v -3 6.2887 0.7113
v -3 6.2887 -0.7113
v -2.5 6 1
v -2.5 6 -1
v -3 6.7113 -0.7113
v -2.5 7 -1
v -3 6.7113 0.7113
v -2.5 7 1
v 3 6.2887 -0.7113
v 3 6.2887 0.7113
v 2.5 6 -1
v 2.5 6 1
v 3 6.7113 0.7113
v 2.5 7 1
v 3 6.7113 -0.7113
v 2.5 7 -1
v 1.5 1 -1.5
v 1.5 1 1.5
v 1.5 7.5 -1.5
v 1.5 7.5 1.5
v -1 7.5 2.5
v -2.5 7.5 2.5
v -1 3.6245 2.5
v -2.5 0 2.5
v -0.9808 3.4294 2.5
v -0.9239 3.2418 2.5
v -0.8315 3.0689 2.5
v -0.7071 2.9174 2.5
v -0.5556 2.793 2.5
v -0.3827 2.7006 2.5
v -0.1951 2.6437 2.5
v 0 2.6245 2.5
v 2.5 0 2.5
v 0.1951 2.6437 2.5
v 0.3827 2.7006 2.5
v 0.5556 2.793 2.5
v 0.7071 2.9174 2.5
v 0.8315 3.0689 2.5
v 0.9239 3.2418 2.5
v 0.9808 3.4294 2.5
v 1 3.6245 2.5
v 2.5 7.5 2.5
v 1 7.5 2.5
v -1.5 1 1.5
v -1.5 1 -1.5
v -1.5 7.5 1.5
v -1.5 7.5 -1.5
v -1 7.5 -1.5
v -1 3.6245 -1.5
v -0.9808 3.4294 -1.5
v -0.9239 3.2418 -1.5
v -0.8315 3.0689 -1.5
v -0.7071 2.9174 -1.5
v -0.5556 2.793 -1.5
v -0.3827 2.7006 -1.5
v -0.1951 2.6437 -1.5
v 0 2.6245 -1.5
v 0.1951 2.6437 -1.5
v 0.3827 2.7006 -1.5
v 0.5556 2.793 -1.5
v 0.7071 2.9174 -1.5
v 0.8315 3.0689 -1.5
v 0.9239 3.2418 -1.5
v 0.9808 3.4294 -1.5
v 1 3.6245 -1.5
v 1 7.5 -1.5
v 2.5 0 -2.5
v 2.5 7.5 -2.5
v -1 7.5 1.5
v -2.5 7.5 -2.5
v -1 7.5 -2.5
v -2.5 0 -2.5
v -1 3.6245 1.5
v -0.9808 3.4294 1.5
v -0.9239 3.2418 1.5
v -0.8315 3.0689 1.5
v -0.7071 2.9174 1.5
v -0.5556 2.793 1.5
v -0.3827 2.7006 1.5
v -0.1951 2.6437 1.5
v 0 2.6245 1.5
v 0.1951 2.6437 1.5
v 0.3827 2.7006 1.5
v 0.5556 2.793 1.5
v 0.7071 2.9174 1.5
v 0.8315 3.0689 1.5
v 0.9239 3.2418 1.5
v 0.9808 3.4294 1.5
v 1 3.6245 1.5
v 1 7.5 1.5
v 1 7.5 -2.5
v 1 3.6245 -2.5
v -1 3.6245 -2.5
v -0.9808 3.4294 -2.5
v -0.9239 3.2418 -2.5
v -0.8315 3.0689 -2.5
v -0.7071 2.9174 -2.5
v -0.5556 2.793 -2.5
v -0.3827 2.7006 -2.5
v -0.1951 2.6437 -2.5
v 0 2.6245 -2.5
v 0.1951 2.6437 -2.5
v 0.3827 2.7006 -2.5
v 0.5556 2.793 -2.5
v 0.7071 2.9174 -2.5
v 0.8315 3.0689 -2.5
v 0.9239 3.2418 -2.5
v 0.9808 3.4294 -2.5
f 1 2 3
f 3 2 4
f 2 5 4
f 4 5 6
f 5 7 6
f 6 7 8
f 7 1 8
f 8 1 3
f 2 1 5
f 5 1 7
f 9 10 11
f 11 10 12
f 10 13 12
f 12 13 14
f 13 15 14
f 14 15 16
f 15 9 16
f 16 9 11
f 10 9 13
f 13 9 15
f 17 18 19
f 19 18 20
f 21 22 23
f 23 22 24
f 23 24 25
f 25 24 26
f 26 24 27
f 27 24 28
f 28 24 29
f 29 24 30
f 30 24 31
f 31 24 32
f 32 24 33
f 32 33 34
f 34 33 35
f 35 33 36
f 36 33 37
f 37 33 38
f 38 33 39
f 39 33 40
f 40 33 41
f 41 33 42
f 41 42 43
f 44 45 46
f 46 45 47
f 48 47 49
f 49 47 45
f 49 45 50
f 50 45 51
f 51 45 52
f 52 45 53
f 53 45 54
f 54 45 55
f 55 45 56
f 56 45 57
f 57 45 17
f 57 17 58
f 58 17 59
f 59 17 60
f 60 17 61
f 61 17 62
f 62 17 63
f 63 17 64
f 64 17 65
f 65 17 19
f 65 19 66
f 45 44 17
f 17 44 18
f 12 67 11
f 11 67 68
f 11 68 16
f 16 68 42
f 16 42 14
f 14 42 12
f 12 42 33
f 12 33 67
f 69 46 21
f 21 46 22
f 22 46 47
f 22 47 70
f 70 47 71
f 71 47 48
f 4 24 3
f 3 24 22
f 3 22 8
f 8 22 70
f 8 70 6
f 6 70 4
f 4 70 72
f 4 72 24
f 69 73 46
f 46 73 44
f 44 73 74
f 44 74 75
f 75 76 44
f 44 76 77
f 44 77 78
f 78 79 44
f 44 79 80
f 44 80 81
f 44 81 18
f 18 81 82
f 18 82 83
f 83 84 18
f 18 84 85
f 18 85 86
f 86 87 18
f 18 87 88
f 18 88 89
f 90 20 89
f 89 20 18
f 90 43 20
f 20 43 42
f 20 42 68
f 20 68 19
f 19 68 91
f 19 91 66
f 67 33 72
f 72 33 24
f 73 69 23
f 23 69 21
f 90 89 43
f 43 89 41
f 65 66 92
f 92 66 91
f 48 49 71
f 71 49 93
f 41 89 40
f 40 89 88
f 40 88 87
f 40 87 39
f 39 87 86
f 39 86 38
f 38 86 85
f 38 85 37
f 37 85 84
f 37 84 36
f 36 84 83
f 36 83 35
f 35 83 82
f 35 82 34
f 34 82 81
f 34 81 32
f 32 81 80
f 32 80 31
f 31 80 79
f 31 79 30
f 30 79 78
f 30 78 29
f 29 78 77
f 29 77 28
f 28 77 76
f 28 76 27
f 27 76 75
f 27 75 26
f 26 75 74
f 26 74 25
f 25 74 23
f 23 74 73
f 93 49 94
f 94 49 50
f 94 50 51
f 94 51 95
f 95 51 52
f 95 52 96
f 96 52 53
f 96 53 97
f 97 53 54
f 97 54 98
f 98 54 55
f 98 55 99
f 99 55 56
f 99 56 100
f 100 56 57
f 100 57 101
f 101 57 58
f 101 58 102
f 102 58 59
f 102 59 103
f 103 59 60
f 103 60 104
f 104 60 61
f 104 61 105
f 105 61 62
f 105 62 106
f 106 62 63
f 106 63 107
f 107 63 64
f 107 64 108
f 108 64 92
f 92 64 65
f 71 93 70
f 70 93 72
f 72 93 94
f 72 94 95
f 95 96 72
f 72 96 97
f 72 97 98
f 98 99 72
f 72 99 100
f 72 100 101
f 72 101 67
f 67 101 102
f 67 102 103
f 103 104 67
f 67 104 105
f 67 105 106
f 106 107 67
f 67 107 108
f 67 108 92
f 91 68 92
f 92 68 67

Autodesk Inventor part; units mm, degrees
ref_plane "YZ Plane" through (0, 0, 0) normal (1, 0, 0) x (0, 1, 0)
ref_plane "XZ Plane" through (0, 0, 0) normal (0, 1, 0) x (-1, 0, 0)
ref_plane "XY Plane" through (0, 0, 0) normal (0, 0, 1) x (1, 0, 0)
sketch "Sketch1" plane through (0, 0, 0) normal (0, 1, 0) x (-1, 0, 0)
  line L0 (-2.5, 2.5) -> (2.5, 2.5)
  line L1 (2.5, 2.5) -> (2.5, -2.5)
  line L2 (2.5, -2.5) -> (-2.5, -2.5)
  line L3 (-2.5, -2.5) -> (-2.5, 2.5)
  line L4 (-2.5, 2.5) -> (2.5, -2.5) construction
  line L5 (2.5, 2.5) -> (-2.5, -2.5) construction
  point P0 (0, 0)
  dimension "d0" = 5
  dimension "d1" = 5
extrude "Extrusion1" add sketch "Sketch1" along normal blind 7.5
shell "Shell1" thickness 1 removed faces 1 at (-0.8333, 7.5, -0.8333)
sketch "Sketch4" plane through (0, 7.5, 0) normal (0, 1, 0) x (1, 0, 0)
  point P0 (0, 0)
sketch "Sketch5" plane through (0, 7.5, 0) normal (0, 1, 0) x (1, 0, 0)
  point P0 (0, 0)
sketch "Sketch6" plane through (0, 7.5, 0) normal (0, 1, 0) x (1, 0, 0)
  point P0 (0, 0)
sketch "Sketch7" plane through (0, 0, 0) normal (0, -1, 0) x (1, 0, 0)
  point P0 (0, 0)
sketch "Sketch8" plane through (-2.5, 0, -2.5) normal (-1, 0, 0) x (0, 0, 1)
  point P0 (2.5, 0)
sketch "Sketch9" plane through (2.5, 0, 2.5) normal (1, 0, 0) x (0, 0, -1)
  line L0 (1.5, 6) -> (3.5, 6)
  line L1 (3.5, 6) -> (3.5, 7)
  line L2 (3.5, 7) -> (1.5, 7)
  line L3 (1.5, 7) -> (1.5, 6)
  line L4 (1.5, 6) -> (3.5, 7) construction
  line L5 (3.5, 6) -> (1.5, 7) construction
  line L6 (0, 7.5) -> (5, 7.5) projected
  point P0 (2.5, 0)
  point P1 (2.5, 6.5)
  dimension "d10" = 1
  dimension "d14" = 2
  dimension "d15" = 1
extrude "Extrusion4" add sketch "Sketch9" along normal blind 0.5 draft -30
sketch "Sketch10" plane through (-2.5, 0, -2.5) normal (-1, 0, 0) x (0, 0, 1)
  line L0 (1.5, 6) -> (3.5, 6)
  line L1 (3.5, 6) -> (3.5, 7)
  line L2 (3.5, 7) -> (1.5, 7)
  line L3 (1.5, 7) -> (1.5, 6)
  line L4 (1.5, 6) -> (3.5, 7) construction
  line L5 (3.5, 6) -> (1.5, 7) construction
  line L6 (0, 7.5) -> (5, 7.5) projected
  point P0 (2.5, 0)
  point P1 (2.5, 6.5)
  dimension "d13" = 1
  dimension "d16" = 2
  dimension "d17" = 1
extrude "Extrusion5" add sketch "Sketch10" along normal blind 0.5 draft -30
sketch "Sketch11" plane through (2.5, 0, -2.5) normal (0, 0, -1) x (-1, 0, 0)
  line L0 (2.5, 7.862) -> (2.5, 3.6245) construction
  line L1 (1.5, 7.862) -> (1.5, 3.6245)
  line L2 (3.5, 3.6245) -> (3.5, 7.862)
  arc A0 (3.5, 7.862) -> (1.5, 7.862) centre (2.5, 7.862) ccw
  arc A1 (1.5, 3.6245) -> (3.5, 3.6245) centre (2.5, 3.6245) ccw
  point P0 (2.5, 0)
  point P1 (2.5, 5.7432)
  dimension "d20" = 2
extrude "Extrusion6" cut sketch "Sketch11" against normal through all
equation "\"d16\" = d14"
equation "\"d17\" = d15"
properties part number "snapfit_v11"
